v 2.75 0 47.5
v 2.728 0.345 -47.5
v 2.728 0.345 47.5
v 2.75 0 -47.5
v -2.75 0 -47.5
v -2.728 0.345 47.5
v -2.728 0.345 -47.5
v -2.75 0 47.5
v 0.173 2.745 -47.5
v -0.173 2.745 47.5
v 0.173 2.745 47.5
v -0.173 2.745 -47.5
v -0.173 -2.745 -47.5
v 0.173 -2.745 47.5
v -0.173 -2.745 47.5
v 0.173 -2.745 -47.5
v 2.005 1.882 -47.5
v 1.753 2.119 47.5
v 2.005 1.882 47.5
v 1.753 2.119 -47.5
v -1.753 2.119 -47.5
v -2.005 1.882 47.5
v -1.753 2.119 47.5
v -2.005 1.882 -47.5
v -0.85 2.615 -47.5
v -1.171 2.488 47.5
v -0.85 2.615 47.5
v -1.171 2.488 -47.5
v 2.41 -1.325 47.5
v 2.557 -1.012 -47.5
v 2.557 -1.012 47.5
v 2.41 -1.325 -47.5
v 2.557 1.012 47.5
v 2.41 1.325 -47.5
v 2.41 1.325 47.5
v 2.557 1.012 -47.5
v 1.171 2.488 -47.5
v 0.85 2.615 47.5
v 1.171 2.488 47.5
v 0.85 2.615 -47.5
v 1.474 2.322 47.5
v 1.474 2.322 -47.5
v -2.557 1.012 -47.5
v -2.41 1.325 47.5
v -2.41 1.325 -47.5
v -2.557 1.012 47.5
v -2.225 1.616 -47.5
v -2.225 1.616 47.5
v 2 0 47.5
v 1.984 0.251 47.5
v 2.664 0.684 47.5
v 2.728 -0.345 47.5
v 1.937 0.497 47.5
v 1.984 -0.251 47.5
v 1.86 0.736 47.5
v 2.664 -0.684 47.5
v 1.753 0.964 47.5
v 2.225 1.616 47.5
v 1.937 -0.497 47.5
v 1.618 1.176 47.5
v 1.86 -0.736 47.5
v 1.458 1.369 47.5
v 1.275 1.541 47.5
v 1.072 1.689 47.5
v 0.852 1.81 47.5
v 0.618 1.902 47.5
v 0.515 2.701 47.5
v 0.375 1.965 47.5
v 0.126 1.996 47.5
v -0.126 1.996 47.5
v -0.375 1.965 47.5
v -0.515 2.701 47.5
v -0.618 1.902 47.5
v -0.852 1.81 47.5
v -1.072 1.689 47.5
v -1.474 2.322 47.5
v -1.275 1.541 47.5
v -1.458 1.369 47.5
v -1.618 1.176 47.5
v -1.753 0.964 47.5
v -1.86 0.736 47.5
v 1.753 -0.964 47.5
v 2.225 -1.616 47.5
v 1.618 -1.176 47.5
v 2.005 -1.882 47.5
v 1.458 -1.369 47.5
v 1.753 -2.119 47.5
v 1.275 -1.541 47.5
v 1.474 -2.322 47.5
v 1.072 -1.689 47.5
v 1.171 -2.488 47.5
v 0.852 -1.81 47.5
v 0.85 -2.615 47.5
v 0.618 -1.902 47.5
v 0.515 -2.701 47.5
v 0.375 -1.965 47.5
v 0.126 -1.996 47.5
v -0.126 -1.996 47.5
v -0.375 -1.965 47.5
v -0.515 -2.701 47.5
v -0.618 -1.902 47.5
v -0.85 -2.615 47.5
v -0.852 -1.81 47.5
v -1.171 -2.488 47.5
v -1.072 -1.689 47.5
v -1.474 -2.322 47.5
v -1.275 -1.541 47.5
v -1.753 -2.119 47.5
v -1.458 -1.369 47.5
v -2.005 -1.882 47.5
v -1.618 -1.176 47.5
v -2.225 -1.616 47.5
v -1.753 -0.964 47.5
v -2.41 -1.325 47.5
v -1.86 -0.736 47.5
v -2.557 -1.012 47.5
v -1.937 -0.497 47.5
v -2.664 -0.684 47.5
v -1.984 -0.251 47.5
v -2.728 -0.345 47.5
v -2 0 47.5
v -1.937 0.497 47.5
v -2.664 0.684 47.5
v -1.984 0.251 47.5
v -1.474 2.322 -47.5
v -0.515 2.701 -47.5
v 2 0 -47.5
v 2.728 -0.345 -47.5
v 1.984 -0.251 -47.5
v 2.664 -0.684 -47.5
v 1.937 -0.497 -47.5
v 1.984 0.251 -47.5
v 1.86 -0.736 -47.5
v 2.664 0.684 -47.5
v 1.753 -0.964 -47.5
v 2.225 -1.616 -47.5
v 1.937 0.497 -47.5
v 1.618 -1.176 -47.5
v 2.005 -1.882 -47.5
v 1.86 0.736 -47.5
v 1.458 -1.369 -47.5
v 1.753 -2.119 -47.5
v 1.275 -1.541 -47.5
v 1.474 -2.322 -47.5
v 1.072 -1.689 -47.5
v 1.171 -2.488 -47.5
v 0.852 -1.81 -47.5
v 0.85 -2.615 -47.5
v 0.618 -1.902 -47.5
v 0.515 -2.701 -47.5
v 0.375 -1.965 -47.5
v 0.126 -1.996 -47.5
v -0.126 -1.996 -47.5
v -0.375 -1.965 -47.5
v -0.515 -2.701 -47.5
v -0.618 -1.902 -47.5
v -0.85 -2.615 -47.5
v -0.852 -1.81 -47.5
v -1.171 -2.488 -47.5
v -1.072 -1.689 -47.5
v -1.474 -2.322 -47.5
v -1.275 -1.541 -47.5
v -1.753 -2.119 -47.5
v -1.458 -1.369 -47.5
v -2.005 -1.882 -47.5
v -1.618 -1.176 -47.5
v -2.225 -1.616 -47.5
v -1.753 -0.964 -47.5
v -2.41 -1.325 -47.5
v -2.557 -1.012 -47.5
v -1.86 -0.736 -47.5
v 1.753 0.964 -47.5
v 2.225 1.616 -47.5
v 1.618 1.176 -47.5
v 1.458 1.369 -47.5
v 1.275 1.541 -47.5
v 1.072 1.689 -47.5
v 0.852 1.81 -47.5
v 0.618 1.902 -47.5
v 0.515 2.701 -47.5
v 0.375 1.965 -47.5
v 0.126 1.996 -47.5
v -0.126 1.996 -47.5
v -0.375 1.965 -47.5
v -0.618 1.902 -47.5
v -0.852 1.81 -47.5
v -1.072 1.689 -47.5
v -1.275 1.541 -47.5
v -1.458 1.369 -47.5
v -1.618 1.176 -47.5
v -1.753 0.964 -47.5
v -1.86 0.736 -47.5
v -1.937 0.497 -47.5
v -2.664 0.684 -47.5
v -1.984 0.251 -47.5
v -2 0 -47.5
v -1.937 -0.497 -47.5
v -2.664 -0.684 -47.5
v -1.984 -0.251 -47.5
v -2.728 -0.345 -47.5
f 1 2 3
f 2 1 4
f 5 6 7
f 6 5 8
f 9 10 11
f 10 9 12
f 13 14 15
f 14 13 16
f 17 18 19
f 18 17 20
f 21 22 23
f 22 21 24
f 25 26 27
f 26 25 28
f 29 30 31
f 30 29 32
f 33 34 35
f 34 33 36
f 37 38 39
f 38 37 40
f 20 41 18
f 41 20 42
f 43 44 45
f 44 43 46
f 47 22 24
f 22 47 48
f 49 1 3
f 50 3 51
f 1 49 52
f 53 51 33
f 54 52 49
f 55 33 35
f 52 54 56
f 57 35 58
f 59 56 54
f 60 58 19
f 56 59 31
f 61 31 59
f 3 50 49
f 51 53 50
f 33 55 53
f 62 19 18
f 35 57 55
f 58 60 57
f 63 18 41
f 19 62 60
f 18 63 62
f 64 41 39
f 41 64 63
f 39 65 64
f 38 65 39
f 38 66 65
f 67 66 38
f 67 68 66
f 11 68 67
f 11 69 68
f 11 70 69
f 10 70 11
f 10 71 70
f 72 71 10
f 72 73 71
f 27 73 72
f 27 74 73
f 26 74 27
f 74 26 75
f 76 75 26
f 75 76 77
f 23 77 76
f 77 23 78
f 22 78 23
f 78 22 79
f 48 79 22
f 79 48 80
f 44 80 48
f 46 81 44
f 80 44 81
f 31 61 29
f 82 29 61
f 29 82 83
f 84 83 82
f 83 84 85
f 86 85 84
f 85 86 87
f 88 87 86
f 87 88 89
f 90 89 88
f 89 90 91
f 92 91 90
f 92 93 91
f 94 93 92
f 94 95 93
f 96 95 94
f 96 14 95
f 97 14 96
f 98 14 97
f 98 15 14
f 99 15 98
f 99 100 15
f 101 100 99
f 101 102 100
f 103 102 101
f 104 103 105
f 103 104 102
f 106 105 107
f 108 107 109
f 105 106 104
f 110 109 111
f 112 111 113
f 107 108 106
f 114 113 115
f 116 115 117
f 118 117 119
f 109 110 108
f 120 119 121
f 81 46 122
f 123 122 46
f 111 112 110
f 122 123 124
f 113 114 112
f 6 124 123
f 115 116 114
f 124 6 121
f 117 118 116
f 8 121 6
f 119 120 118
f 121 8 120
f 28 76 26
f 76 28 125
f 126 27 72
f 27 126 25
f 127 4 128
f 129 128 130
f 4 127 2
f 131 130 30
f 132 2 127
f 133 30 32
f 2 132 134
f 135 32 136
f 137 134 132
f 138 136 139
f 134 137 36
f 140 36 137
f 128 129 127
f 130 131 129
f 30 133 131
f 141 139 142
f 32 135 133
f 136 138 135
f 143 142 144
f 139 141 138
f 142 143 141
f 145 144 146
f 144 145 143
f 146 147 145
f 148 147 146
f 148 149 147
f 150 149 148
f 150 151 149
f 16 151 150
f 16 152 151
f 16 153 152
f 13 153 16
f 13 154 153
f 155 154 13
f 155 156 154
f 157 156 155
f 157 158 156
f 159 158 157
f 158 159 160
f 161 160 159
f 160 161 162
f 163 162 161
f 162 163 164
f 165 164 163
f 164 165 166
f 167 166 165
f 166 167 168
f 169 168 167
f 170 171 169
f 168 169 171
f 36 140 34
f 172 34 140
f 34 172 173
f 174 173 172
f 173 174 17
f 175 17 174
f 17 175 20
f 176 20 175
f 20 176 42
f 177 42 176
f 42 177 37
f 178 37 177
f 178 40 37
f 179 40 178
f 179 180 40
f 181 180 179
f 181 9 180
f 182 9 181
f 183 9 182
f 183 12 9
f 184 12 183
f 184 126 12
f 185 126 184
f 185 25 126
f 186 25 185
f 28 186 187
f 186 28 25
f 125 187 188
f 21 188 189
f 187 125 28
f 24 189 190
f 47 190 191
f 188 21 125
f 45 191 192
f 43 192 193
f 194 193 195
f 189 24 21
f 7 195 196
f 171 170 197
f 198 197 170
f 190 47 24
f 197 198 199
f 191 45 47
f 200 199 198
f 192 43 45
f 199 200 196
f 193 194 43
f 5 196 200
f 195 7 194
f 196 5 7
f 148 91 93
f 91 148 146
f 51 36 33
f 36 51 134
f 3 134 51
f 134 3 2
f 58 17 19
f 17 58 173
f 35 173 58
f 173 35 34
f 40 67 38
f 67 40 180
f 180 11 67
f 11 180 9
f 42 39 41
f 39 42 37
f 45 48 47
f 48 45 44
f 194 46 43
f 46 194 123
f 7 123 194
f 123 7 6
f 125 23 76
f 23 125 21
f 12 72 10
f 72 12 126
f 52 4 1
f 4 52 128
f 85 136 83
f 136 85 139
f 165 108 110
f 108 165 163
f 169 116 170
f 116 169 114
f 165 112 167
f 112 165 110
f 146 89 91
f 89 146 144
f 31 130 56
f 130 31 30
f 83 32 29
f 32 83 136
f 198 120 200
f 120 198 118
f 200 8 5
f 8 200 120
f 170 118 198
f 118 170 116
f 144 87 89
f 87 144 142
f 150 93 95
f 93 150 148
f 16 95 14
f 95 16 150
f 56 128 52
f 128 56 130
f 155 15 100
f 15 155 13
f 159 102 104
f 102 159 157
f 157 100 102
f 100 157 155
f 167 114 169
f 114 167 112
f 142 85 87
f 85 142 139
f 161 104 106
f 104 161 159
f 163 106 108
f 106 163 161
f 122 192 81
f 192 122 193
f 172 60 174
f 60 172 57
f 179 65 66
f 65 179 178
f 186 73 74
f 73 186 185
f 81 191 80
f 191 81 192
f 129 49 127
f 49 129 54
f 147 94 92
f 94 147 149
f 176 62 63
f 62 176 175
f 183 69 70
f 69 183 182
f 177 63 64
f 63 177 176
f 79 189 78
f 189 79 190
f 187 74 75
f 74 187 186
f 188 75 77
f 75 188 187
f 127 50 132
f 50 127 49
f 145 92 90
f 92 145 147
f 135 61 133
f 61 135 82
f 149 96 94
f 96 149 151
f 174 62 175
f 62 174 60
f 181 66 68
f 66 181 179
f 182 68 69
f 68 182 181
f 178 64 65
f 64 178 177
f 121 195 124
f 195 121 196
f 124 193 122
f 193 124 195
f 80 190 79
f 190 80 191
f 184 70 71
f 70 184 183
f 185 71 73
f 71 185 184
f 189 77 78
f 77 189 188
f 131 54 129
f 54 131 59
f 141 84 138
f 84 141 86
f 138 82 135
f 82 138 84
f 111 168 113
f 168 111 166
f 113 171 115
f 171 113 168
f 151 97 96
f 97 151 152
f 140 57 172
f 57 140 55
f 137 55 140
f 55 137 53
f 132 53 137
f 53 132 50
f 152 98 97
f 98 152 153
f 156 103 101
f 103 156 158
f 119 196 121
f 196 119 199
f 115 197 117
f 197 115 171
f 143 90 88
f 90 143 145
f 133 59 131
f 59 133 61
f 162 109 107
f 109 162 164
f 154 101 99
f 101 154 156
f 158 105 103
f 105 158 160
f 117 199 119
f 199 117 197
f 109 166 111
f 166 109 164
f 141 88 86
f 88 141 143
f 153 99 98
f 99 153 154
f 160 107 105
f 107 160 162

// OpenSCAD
$fn = 50;


difference() {
	union() {
		translate(v = [0, 0, -47.5000000000]) {
			cylinder(h = 95, r = 2.7500000000);
		}
	}
	union() {
		translate(v = [0, 0, -100.0000000000]) {
			cylinder(h = 200, r = 2.0000000000);
		}
	}
}
